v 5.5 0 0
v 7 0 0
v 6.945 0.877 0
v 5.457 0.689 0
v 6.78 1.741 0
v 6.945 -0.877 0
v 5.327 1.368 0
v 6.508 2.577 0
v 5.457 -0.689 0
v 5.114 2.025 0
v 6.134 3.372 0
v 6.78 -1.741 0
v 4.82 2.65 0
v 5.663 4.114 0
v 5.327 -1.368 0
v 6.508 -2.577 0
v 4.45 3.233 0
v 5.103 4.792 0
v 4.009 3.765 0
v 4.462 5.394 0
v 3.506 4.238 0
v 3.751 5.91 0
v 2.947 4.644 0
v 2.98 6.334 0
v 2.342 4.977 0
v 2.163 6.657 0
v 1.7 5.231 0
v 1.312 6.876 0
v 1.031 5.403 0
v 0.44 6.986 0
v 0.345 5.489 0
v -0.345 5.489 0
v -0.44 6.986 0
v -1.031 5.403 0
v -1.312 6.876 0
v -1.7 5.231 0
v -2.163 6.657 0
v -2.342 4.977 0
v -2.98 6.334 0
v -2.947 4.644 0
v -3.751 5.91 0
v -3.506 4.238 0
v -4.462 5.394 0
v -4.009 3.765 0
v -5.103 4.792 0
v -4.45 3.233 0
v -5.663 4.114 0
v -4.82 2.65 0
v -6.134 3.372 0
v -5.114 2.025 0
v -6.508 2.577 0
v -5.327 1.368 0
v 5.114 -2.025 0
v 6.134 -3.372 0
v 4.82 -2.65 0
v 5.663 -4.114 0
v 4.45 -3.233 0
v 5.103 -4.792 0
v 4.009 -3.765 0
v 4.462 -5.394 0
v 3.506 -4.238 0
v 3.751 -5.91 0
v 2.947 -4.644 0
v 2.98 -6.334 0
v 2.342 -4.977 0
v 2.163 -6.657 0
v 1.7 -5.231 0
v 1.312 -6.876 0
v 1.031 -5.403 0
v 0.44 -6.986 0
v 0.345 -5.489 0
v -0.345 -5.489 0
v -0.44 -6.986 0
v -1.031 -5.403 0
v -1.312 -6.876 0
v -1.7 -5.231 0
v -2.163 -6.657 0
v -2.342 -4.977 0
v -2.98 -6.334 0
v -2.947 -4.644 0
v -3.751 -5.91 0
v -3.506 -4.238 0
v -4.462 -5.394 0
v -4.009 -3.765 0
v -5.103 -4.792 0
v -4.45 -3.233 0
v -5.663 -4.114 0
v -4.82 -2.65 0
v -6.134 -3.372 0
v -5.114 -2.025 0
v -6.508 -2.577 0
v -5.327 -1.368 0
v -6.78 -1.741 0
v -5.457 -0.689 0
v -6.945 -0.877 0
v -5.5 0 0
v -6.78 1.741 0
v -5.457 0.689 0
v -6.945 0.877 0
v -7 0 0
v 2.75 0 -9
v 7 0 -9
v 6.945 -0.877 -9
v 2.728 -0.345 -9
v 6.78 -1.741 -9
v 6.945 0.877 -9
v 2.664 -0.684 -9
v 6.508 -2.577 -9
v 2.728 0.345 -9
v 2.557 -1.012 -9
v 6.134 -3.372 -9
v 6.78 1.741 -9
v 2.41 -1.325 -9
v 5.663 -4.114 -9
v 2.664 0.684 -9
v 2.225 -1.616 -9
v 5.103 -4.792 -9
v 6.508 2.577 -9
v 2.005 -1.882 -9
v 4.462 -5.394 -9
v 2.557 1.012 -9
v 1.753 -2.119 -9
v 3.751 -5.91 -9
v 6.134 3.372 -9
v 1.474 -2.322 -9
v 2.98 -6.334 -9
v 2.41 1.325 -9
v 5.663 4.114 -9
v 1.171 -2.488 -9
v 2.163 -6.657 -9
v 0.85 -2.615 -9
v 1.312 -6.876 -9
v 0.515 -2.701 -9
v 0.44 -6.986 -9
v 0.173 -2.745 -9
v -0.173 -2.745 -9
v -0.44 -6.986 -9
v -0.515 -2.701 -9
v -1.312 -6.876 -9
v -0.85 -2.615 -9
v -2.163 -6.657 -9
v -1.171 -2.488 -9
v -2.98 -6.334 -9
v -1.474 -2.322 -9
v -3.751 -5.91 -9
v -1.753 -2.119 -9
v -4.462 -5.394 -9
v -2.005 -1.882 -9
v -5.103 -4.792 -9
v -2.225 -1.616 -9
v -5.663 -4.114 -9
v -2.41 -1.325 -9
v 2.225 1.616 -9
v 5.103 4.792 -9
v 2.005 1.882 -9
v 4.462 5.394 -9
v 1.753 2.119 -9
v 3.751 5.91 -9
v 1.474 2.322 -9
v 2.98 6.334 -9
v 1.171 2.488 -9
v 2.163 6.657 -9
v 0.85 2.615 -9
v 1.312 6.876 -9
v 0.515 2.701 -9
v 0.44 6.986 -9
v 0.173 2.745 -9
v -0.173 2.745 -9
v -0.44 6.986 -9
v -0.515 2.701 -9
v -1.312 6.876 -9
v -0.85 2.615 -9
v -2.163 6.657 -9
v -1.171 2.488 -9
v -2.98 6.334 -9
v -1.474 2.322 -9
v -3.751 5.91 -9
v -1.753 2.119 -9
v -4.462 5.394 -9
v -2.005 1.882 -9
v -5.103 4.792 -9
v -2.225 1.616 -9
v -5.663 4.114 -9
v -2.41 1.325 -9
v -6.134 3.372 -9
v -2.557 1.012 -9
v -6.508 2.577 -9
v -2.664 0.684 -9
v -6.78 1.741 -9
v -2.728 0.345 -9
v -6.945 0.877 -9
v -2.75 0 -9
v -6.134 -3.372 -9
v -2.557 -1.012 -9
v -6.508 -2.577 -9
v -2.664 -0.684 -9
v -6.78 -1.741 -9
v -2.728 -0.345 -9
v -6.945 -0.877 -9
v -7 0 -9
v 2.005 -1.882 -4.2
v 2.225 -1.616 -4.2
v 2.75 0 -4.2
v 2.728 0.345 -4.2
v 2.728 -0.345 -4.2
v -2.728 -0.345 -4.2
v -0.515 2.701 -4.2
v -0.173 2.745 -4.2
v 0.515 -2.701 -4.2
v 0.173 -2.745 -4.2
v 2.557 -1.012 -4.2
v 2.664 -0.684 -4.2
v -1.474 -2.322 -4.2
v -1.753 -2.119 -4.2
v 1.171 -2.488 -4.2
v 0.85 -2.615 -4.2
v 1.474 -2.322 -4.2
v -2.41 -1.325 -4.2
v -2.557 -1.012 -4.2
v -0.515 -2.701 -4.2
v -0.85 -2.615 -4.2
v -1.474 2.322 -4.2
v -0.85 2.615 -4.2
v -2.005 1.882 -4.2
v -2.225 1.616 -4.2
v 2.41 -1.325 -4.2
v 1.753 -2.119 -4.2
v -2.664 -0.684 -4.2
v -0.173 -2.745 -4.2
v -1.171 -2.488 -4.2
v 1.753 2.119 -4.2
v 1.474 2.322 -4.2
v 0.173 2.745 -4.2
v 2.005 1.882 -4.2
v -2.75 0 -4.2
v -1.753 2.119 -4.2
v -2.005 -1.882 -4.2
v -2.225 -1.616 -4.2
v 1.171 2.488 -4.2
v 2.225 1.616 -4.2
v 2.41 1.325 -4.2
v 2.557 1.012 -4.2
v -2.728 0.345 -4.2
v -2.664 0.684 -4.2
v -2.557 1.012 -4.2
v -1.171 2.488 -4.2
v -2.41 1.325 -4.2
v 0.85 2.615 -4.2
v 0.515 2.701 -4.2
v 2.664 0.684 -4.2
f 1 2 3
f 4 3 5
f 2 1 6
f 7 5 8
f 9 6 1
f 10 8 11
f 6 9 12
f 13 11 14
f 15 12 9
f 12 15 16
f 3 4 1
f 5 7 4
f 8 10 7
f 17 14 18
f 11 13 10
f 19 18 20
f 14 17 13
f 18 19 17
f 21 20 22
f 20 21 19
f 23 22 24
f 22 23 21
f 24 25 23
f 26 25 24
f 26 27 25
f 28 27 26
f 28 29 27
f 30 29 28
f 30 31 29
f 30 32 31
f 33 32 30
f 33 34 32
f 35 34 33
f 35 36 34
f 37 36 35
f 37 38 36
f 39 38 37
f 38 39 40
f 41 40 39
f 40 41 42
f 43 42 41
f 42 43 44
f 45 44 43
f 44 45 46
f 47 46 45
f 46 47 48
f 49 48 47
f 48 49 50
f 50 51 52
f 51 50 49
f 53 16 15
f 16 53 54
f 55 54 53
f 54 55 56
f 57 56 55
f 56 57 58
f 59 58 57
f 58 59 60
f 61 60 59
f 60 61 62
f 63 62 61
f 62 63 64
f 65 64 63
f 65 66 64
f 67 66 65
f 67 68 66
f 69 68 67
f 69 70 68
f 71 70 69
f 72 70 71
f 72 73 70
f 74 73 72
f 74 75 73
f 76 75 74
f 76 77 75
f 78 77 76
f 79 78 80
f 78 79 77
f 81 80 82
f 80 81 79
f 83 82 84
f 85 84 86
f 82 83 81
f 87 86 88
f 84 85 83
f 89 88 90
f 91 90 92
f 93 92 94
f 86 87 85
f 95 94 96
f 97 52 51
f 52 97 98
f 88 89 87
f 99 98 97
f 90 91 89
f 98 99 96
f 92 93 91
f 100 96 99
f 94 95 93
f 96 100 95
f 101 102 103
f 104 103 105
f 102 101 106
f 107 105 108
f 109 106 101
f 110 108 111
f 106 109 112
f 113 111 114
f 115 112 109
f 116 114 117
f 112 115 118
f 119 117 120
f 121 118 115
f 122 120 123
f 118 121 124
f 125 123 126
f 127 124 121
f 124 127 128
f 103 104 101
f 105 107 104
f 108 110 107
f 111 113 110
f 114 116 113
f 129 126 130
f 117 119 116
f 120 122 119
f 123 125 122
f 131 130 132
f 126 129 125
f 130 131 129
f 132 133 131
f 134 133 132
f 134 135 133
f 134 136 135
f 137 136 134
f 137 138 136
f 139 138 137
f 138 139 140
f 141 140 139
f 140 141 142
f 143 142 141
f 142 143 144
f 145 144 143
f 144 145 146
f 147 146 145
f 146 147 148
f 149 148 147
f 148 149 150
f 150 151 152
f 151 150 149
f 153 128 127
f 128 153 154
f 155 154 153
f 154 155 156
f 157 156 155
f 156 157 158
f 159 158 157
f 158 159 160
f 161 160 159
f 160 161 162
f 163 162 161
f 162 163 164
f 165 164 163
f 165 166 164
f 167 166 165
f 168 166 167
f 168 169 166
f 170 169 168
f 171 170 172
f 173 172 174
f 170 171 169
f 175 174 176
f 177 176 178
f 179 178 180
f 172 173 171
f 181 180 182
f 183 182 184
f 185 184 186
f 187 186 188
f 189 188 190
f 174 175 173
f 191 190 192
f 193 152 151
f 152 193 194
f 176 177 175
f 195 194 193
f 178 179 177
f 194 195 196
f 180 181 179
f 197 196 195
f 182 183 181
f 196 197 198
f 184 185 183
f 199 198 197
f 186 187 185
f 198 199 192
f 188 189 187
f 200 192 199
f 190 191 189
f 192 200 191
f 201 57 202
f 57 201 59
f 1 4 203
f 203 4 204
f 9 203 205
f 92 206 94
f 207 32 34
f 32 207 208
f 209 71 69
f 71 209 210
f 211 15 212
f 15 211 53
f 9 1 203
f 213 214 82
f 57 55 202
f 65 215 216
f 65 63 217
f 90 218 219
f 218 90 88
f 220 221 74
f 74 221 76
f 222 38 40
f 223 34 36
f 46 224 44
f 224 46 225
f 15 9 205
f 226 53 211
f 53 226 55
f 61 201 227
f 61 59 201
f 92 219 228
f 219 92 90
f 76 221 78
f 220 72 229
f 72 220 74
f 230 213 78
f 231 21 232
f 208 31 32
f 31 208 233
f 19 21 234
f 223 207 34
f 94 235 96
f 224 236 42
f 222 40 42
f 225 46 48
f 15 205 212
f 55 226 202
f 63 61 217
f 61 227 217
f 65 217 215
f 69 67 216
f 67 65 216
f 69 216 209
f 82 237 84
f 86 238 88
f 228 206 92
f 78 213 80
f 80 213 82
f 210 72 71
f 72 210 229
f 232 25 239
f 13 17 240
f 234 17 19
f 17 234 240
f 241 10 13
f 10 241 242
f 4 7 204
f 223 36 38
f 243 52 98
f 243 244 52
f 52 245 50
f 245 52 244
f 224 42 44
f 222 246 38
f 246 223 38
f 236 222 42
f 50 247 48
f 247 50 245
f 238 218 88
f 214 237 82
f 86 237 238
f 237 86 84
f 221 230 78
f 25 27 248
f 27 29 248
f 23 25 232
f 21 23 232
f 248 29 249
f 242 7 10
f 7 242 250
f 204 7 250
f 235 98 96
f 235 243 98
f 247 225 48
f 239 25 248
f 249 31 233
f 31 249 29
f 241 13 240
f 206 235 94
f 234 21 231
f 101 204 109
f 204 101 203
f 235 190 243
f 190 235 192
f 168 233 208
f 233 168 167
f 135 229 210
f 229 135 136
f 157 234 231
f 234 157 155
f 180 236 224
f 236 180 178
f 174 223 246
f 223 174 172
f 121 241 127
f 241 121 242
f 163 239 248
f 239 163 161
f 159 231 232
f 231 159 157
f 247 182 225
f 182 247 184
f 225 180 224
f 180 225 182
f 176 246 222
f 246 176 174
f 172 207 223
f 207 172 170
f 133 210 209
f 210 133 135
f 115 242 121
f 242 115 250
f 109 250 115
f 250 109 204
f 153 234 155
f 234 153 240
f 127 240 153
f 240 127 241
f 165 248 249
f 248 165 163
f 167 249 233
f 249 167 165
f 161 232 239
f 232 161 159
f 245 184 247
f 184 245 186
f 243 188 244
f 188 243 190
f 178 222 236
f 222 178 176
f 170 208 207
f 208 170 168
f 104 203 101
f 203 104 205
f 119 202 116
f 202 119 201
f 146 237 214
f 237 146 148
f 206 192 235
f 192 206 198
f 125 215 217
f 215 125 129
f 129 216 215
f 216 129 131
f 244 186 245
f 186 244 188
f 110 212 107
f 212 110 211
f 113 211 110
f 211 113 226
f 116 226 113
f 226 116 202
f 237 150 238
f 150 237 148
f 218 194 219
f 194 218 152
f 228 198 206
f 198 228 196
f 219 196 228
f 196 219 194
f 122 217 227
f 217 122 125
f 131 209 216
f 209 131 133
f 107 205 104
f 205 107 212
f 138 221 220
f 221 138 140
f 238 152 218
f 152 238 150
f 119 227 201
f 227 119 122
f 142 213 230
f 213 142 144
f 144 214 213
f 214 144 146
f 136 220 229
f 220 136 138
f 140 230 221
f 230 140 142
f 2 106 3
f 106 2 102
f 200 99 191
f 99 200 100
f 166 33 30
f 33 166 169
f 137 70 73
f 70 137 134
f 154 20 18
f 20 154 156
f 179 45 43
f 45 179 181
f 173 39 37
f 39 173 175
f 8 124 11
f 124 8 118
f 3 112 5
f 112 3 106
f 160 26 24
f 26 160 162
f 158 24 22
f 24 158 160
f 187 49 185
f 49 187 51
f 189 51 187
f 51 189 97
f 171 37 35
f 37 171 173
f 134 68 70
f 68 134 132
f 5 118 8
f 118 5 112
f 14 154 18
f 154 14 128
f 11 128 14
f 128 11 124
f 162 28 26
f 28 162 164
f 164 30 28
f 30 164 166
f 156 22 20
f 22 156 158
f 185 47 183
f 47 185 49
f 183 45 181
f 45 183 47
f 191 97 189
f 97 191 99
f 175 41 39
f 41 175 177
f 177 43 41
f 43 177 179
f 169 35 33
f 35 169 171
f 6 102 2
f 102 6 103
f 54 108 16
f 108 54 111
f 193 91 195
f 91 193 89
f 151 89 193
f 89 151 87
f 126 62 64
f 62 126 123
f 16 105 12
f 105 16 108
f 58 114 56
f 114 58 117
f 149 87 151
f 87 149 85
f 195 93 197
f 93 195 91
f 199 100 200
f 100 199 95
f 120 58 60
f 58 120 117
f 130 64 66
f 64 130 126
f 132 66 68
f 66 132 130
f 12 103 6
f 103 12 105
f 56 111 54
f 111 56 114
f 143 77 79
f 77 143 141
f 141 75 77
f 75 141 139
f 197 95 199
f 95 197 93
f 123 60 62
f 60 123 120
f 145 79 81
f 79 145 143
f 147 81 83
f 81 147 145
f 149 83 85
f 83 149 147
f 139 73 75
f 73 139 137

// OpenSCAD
$fn = 50;


difference() {
	union() {
		translate(v = [0, 0, -9.0000000000]) {
			cylinder(h = 9, r = 7.0000000000);
		}
		cylinder(h = 0, r = 10.0000000000);
	}
	union() {
		translate(v = [0, 0, 0]) {
			rotate(a = [0, 0, 0]) {
				difference() {
					union() {
						#translate(v = [0, 0, -9.0000000000]) {
							cylinder(h = 9, r = 2.2500000000);
						}
						#translate(v = [0, 0, -4.2000000000]) {
							cylinder(h = 4.2000000000, r = 7.0000000000, r1 = 2.7500000000, r2 = 5.5000000000);
						}
						#translate(v = [0, 0, -9.0000000000]) {
							cylinder(h = 9, r = 2.7500000000);
						}
						#translate(v = [0, 0, -9.0000000000]) {
							cylinder(h = 9, r = 2.2500000000);
						}
					}
					union();
				}
			}
		}
	}
}
